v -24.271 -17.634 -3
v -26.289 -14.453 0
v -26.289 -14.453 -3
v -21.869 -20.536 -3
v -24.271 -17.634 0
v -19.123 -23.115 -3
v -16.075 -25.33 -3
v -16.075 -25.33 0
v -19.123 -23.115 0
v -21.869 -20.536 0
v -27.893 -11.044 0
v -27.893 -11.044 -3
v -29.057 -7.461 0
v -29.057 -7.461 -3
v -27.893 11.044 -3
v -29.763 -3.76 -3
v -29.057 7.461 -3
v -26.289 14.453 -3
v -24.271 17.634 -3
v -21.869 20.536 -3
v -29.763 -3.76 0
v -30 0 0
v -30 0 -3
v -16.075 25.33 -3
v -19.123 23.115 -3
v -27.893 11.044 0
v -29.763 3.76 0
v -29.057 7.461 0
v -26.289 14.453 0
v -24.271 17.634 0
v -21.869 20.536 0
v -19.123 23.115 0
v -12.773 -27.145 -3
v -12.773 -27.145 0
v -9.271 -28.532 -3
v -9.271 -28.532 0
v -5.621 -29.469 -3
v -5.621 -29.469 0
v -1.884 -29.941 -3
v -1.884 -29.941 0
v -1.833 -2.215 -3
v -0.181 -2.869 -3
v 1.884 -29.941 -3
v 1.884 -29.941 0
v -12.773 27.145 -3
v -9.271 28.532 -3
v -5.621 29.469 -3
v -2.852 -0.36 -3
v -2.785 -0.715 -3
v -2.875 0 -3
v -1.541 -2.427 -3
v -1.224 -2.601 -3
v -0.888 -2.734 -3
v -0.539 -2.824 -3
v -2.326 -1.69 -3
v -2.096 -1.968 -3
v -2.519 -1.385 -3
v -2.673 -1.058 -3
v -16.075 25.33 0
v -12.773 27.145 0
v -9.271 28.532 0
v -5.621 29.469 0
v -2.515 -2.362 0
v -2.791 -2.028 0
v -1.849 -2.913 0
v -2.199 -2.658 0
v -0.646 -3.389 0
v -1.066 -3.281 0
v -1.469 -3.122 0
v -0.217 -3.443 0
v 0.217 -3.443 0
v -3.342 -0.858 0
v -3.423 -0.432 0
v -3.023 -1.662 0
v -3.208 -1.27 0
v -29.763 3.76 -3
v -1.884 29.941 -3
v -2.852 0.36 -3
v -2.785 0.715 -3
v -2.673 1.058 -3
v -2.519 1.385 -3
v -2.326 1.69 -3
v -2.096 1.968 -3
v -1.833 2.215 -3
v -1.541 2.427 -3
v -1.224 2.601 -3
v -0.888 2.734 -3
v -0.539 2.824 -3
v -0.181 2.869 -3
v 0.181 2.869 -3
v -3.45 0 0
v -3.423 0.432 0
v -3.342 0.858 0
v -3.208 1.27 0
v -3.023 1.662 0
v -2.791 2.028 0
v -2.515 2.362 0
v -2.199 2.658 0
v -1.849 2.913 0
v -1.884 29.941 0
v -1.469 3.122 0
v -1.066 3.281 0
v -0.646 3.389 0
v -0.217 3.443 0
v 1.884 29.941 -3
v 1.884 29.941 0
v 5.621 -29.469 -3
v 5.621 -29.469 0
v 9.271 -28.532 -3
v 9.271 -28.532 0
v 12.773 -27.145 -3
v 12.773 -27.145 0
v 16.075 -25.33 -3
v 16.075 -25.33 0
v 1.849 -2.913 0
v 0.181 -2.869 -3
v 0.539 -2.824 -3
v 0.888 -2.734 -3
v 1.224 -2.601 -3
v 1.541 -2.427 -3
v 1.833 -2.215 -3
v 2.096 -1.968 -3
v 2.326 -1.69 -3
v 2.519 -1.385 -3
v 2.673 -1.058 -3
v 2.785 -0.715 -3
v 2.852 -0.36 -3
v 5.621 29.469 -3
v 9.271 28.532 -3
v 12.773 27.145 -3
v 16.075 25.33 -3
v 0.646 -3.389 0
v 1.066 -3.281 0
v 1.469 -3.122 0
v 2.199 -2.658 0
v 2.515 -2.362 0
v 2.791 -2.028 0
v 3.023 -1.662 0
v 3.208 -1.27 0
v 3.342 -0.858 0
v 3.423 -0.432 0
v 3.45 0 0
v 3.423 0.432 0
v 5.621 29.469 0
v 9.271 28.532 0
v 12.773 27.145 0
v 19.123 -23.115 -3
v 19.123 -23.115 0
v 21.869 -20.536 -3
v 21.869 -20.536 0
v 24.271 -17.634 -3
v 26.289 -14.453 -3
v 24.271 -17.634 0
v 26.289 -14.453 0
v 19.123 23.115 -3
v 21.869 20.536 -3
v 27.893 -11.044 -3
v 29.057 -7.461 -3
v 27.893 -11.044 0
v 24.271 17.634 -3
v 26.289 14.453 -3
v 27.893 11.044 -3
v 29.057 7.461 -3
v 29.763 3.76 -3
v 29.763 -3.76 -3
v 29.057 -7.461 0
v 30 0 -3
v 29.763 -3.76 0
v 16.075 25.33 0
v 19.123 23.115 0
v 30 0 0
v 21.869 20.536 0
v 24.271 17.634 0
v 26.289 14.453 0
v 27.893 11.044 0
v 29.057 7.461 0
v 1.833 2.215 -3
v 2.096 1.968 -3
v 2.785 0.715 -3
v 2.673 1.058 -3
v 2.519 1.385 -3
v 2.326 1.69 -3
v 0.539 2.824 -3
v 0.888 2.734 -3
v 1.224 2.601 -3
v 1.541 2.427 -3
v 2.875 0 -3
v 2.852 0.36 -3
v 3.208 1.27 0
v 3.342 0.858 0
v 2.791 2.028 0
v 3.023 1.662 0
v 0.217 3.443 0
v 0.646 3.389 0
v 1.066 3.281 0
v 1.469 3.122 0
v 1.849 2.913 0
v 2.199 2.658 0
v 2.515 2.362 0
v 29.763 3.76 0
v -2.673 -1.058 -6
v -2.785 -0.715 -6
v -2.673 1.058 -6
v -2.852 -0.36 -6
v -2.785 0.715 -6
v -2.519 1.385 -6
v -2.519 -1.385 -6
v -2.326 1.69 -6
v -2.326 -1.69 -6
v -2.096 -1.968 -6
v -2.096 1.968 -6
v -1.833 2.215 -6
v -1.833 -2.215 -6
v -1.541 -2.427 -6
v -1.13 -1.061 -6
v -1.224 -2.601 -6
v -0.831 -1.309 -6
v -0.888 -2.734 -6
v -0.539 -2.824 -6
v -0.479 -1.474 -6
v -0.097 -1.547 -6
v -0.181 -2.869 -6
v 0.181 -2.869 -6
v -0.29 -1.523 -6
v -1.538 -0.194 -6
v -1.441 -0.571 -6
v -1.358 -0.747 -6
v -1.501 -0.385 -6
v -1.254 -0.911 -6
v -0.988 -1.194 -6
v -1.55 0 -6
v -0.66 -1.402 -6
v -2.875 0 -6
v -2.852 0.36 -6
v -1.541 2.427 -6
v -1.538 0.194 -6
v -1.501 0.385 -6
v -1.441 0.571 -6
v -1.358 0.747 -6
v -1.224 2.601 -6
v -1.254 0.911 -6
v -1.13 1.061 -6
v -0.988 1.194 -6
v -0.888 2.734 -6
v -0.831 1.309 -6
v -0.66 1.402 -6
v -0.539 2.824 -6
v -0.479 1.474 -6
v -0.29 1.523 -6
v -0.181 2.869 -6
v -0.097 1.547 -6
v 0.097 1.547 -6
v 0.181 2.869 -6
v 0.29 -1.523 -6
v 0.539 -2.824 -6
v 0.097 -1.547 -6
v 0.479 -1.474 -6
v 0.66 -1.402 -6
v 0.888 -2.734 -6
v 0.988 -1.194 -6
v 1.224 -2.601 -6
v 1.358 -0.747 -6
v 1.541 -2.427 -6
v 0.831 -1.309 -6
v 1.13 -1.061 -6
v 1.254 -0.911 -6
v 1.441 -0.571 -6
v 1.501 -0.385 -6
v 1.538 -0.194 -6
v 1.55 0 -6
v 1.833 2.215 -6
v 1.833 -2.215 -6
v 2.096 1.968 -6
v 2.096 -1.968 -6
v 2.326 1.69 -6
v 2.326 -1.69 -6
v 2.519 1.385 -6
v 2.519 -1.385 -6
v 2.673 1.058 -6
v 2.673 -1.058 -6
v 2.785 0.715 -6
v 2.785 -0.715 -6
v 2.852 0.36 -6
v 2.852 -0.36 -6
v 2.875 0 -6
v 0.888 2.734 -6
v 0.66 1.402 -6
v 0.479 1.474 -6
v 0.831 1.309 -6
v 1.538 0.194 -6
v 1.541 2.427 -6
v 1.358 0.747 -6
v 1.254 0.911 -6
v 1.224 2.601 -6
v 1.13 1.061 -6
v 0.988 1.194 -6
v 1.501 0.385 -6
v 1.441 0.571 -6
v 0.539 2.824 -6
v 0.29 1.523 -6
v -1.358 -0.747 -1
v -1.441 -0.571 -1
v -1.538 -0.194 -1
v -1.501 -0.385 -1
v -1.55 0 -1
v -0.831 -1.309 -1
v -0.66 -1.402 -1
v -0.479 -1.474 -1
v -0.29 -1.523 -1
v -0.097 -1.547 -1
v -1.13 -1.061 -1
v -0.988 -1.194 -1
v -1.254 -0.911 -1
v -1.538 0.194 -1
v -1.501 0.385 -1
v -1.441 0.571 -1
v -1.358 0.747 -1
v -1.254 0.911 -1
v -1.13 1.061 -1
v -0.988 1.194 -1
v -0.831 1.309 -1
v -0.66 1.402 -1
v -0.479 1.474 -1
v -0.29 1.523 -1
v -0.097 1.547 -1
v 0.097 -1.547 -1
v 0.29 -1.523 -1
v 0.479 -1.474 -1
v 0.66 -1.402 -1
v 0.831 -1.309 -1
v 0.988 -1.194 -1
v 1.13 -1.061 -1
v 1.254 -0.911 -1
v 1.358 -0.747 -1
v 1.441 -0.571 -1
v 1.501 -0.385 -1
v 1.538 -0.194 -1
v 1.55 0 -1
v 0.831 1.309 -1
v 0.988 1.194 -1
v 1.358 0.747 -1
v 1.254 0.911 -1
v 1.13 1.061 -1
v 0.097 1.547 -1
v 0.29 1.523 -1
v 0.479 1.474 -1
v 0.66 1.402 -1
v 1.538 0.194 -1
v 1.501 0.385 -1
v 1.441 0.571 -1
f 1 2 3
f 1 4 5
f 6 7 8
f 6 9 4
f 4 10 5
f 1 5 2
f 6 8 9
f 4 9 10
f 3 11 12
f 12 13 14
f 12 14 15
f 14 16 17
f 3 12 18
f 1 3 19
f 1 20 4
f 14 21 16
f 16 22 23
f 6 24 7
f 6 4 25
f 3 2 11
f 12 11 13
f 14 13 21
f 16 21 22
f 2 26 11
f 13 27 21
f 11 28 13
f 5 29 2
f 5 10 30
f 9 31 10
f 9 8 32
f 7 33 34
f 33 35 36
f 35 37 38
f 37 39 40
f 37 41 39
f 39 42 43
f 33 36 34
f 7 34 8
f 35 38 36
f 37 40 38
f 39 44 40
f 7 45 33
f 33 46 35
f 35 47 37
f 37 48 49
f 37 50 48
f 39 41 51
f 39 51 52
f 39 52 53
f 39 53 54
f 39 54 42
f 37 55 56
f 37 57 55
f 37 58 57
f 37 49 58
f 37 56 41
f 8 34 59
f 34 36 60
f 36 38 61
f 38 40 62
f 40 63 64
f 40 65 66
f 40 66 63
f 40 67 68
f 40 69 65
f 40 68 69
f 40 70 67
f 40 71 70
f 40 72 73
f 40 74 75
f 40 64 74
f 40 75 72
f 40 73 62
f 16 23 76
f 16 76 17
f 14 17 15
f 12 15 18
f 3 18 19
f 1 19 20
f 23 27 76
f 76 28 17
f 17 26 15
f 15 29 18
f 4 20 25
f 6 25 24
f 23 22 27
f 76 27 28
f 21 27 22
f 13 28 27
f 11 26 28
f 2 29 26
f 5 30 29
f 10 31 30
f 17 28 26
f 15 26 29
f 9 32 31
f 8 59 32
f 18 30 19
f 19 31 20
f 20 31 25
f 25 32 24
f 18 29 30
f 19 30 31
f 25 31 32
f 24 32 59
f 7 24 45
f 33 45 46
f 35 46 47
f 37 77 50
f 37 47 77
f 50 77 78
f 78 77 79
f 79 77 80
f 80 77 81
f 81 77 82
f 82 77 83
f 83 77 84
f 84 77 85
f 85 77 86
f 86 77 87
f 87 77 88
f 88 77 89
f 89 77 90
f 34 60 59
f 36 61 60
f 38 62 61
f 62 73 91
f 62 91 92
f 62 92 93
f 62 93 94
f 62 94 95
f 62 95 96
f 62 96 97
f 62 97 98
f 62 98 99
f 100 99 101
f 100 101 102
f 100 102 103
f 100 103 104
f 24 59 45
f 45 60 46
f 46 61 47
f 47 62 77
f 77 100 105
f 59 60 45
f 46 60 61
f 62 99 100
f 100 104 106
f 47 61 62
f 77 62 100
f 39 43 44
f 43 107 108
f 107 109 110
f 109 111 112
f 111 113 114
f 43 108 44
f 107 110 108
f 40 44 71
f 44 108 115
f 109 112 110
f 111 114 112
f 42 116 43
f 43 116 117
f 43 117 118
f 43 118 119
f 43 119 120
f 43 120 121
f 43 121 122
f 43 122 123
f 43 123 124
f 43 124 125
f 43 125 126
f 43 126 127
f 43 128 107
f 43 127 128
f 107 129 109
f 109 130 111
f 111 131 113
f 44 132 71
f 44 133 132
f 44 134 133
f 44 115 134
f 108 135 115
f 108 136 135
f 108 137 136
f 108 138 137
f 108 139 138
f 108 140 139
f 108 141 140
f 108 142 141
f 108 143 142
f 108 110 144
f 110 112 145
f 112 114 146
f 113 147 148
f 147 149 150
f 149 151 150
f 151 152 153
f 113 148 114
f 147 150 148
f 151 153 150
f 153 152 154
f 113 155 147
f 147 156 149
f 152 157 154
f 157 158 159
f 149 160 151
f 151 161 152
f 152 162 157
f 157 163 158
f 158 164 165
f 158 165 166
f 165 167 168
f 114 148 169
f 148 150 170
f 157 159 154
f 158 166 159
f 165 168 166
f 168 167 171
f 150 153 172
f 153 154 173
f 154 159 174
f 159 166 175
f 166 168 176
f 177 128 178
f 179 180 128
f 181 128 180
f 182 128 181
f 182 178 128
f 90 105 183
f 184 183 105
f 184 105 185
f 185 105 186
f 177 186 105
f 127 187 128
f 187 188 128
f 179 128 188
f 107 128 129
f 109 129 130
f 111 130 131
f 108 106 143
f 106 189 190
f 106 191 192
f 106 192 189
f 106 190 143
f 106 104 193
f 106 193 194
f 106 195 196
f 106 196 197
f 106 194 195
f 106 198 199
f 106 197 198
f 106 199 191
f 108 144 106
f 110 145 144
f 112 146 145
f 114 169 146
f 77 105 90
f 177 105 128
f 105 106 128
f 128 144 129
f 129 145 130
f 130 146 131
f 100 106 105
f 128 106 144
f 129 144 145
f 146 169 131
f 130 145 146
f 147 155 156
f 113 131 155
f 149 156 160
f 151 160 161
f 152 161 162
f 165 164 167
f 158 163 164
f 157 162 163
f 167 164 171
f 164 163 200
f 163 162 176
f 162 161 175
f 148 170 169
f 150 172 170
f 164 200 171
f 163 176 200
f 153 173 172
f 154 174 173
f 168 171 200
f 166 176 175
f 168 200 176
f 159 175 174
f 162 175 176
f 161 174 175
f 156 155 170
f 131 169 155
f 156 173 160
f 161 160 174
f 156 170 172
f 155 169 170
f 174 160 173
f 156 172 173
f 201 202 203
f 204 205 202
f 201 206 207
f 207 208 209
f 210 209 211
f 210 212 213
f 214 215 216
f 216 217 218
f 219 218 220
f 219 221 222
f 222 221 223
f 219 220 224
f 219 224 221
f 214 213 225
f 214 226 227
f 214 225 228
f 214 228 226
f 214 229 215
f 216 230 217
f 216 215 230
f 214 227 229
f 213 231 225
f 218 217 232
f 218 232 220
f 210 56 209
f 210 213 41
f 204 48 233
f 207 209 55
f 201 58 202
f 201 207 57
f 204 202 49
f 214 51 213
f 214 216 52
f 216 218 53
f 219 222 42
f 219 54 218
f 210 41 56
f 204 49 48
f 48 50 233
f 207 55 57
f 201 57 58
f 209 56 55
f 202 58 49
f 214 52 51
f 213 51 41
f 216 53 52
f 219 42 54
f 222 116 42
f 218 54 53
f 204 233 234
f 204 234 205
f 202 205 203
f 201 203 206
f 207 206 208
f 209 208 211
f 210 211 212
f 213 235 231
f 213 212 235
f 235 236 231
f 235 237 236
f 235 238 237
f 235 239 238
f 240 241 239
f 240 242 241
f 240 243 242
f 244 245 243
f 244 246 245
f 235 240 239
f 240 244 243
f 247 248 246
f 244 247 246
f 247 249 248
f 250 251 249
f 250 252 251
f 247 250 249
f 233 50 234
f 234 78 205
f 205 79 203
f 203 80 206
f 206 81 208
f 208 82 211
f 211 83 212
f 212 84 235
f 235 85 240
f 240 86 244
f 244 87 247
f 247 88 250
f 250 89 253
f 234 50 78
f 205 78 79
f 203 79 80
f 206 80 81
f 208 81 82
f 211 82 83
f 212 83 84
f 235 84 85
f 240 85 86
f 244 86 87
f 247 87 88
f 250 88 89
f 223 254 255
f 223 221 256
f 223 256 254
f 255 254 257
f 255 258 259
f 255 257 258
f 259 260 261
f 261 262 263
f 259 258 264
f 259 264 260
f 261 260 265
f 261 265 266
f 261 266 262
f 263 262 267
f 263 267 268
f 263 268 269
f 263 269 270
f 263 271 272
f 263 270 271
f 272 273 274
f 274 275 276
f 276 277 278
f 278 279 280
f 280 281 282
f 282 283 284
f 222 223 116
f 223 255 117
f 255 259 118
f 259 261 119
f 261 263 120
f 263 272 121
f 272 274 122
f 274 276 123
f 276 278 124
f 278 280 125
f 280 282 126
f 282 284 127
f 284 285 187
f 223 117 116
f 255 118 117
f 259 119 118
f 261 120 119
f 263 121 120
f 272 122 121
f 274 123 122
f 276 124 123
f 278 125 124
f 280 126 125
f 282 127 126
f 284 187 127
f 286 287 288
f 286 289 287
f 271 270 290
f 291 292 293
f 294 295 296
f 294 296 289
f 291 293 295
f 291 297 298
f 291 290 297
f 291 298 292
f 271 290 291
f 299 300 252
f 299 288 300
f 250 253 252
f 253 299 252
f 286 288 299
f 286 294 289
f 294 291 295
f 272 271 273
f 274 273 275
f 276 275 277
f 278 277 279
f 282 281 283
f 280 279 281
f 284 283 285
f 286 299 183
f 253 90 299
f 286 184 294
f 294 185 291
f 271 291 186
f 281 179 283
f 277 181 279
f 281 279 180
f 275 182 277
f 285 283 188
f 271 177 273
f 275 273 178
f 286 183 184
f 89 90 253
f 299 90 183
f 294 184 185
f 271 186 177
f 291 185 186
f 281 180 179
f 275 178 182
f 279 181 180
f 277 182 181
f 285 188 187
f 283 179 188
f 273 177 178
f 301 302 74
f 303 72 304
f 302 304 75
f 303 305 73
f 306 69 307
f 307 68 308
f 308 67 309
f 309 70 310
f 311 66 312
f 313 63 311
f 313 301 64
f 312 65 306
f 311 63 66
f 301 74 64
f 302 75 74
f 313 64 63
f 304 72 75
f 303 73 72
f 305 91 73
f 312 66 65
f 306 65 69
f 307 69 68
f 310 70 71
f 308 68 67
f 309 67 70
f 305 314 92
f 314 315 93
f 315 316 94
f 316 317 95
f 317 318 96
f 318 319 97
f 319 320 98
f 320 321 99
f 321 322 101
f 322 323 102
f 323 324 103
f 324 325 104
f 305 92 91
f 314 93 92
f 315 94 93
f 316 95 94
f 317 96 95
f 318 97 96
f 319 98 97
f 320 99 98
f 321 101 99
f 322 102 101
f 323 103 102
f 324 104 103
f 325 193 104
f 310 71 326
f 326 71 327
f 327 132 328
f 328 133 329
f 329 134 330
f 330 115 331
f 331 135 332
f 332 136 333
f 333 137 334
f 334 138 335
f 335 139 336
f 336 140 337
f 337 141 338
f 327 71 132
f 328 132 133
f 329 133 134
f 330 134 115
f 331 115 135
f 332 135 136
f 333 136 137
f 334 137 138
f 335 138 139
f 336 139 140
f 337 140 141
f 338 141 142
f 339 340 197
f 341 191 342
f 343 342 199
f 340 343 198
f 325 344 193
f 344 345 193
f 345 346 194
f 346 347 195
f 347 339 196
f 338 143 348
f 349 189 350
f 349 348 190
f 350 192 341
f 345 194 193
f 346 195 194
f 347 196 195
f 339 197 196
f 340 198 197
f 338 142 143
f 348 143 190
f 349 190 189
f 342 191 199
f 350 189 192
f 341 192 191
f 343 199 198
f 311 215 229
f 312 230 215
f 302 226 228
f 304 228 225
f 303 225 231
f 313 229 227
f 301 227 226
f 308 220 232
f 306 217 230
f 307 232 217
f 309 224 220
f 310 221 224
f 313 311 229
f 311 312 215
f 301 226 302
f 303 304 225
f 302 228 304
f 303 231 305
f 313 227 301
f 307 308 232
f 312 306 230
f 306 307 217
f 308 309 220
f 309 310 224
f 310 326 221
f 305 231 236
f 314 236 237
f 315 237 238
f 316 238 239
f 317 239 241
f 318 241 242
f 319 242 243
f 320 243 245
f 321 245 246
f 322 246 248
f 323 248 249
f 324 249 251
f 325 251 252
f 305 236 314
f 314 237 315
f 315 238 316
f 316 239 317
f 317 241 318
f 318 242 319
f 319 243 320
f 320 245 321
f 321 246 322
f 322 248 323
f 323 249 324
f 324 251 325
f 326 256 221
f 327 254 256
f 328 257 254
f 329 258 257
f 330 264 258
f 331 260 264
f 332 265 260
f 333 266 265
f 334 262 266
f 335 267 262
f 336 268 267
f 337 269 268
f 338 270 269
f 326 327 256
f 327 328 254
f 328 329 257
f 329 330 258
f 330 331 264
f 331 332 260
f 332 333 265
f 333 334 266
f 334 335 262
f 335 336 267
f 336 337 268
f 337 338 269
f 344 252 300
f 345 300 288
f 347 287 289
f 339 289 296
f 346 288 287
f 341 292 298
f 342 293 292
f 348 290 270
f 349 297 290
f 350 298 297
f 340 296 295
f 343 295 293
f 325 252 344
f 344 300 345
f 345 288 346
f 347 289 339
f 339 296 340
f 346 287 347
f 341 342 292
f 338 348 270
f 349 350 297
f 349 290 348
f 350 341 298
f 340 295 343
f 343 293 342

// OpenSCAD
$fn = 50;

difference() {
	union() {
		translate(v = [0, 0, -3.0]) {
			cylinder(h = 3, r = 30.0);
		}
		#translate(v = [0, 0, -6.0]) {
			cylinder(h = 6, r = 2.875);
		}
	}
	union() {
		translate(v = [0, 0, 0]) {
			rotate(a = [0, 0, 0]) {
				difference() {
					union() {
						translate(v = [0, 0, -6.0]) {
							cylinder(h = 6, r = 1.25);
						}
						translate(v = [0, 0, -1.0]) {
							cylinder(h = 1.0, r1 = 1.55, r2 = 3.45);
						}
						translate(v = [0, 0, -6.0]) {
							cylinder(h = 6, r = 1.55);
						}
						translate(v = [0, 0, -6.0]) {
							cylinder(h = 6, r = 1.25);
						}
					}
					union();
				}
			}
		}
	}
}
